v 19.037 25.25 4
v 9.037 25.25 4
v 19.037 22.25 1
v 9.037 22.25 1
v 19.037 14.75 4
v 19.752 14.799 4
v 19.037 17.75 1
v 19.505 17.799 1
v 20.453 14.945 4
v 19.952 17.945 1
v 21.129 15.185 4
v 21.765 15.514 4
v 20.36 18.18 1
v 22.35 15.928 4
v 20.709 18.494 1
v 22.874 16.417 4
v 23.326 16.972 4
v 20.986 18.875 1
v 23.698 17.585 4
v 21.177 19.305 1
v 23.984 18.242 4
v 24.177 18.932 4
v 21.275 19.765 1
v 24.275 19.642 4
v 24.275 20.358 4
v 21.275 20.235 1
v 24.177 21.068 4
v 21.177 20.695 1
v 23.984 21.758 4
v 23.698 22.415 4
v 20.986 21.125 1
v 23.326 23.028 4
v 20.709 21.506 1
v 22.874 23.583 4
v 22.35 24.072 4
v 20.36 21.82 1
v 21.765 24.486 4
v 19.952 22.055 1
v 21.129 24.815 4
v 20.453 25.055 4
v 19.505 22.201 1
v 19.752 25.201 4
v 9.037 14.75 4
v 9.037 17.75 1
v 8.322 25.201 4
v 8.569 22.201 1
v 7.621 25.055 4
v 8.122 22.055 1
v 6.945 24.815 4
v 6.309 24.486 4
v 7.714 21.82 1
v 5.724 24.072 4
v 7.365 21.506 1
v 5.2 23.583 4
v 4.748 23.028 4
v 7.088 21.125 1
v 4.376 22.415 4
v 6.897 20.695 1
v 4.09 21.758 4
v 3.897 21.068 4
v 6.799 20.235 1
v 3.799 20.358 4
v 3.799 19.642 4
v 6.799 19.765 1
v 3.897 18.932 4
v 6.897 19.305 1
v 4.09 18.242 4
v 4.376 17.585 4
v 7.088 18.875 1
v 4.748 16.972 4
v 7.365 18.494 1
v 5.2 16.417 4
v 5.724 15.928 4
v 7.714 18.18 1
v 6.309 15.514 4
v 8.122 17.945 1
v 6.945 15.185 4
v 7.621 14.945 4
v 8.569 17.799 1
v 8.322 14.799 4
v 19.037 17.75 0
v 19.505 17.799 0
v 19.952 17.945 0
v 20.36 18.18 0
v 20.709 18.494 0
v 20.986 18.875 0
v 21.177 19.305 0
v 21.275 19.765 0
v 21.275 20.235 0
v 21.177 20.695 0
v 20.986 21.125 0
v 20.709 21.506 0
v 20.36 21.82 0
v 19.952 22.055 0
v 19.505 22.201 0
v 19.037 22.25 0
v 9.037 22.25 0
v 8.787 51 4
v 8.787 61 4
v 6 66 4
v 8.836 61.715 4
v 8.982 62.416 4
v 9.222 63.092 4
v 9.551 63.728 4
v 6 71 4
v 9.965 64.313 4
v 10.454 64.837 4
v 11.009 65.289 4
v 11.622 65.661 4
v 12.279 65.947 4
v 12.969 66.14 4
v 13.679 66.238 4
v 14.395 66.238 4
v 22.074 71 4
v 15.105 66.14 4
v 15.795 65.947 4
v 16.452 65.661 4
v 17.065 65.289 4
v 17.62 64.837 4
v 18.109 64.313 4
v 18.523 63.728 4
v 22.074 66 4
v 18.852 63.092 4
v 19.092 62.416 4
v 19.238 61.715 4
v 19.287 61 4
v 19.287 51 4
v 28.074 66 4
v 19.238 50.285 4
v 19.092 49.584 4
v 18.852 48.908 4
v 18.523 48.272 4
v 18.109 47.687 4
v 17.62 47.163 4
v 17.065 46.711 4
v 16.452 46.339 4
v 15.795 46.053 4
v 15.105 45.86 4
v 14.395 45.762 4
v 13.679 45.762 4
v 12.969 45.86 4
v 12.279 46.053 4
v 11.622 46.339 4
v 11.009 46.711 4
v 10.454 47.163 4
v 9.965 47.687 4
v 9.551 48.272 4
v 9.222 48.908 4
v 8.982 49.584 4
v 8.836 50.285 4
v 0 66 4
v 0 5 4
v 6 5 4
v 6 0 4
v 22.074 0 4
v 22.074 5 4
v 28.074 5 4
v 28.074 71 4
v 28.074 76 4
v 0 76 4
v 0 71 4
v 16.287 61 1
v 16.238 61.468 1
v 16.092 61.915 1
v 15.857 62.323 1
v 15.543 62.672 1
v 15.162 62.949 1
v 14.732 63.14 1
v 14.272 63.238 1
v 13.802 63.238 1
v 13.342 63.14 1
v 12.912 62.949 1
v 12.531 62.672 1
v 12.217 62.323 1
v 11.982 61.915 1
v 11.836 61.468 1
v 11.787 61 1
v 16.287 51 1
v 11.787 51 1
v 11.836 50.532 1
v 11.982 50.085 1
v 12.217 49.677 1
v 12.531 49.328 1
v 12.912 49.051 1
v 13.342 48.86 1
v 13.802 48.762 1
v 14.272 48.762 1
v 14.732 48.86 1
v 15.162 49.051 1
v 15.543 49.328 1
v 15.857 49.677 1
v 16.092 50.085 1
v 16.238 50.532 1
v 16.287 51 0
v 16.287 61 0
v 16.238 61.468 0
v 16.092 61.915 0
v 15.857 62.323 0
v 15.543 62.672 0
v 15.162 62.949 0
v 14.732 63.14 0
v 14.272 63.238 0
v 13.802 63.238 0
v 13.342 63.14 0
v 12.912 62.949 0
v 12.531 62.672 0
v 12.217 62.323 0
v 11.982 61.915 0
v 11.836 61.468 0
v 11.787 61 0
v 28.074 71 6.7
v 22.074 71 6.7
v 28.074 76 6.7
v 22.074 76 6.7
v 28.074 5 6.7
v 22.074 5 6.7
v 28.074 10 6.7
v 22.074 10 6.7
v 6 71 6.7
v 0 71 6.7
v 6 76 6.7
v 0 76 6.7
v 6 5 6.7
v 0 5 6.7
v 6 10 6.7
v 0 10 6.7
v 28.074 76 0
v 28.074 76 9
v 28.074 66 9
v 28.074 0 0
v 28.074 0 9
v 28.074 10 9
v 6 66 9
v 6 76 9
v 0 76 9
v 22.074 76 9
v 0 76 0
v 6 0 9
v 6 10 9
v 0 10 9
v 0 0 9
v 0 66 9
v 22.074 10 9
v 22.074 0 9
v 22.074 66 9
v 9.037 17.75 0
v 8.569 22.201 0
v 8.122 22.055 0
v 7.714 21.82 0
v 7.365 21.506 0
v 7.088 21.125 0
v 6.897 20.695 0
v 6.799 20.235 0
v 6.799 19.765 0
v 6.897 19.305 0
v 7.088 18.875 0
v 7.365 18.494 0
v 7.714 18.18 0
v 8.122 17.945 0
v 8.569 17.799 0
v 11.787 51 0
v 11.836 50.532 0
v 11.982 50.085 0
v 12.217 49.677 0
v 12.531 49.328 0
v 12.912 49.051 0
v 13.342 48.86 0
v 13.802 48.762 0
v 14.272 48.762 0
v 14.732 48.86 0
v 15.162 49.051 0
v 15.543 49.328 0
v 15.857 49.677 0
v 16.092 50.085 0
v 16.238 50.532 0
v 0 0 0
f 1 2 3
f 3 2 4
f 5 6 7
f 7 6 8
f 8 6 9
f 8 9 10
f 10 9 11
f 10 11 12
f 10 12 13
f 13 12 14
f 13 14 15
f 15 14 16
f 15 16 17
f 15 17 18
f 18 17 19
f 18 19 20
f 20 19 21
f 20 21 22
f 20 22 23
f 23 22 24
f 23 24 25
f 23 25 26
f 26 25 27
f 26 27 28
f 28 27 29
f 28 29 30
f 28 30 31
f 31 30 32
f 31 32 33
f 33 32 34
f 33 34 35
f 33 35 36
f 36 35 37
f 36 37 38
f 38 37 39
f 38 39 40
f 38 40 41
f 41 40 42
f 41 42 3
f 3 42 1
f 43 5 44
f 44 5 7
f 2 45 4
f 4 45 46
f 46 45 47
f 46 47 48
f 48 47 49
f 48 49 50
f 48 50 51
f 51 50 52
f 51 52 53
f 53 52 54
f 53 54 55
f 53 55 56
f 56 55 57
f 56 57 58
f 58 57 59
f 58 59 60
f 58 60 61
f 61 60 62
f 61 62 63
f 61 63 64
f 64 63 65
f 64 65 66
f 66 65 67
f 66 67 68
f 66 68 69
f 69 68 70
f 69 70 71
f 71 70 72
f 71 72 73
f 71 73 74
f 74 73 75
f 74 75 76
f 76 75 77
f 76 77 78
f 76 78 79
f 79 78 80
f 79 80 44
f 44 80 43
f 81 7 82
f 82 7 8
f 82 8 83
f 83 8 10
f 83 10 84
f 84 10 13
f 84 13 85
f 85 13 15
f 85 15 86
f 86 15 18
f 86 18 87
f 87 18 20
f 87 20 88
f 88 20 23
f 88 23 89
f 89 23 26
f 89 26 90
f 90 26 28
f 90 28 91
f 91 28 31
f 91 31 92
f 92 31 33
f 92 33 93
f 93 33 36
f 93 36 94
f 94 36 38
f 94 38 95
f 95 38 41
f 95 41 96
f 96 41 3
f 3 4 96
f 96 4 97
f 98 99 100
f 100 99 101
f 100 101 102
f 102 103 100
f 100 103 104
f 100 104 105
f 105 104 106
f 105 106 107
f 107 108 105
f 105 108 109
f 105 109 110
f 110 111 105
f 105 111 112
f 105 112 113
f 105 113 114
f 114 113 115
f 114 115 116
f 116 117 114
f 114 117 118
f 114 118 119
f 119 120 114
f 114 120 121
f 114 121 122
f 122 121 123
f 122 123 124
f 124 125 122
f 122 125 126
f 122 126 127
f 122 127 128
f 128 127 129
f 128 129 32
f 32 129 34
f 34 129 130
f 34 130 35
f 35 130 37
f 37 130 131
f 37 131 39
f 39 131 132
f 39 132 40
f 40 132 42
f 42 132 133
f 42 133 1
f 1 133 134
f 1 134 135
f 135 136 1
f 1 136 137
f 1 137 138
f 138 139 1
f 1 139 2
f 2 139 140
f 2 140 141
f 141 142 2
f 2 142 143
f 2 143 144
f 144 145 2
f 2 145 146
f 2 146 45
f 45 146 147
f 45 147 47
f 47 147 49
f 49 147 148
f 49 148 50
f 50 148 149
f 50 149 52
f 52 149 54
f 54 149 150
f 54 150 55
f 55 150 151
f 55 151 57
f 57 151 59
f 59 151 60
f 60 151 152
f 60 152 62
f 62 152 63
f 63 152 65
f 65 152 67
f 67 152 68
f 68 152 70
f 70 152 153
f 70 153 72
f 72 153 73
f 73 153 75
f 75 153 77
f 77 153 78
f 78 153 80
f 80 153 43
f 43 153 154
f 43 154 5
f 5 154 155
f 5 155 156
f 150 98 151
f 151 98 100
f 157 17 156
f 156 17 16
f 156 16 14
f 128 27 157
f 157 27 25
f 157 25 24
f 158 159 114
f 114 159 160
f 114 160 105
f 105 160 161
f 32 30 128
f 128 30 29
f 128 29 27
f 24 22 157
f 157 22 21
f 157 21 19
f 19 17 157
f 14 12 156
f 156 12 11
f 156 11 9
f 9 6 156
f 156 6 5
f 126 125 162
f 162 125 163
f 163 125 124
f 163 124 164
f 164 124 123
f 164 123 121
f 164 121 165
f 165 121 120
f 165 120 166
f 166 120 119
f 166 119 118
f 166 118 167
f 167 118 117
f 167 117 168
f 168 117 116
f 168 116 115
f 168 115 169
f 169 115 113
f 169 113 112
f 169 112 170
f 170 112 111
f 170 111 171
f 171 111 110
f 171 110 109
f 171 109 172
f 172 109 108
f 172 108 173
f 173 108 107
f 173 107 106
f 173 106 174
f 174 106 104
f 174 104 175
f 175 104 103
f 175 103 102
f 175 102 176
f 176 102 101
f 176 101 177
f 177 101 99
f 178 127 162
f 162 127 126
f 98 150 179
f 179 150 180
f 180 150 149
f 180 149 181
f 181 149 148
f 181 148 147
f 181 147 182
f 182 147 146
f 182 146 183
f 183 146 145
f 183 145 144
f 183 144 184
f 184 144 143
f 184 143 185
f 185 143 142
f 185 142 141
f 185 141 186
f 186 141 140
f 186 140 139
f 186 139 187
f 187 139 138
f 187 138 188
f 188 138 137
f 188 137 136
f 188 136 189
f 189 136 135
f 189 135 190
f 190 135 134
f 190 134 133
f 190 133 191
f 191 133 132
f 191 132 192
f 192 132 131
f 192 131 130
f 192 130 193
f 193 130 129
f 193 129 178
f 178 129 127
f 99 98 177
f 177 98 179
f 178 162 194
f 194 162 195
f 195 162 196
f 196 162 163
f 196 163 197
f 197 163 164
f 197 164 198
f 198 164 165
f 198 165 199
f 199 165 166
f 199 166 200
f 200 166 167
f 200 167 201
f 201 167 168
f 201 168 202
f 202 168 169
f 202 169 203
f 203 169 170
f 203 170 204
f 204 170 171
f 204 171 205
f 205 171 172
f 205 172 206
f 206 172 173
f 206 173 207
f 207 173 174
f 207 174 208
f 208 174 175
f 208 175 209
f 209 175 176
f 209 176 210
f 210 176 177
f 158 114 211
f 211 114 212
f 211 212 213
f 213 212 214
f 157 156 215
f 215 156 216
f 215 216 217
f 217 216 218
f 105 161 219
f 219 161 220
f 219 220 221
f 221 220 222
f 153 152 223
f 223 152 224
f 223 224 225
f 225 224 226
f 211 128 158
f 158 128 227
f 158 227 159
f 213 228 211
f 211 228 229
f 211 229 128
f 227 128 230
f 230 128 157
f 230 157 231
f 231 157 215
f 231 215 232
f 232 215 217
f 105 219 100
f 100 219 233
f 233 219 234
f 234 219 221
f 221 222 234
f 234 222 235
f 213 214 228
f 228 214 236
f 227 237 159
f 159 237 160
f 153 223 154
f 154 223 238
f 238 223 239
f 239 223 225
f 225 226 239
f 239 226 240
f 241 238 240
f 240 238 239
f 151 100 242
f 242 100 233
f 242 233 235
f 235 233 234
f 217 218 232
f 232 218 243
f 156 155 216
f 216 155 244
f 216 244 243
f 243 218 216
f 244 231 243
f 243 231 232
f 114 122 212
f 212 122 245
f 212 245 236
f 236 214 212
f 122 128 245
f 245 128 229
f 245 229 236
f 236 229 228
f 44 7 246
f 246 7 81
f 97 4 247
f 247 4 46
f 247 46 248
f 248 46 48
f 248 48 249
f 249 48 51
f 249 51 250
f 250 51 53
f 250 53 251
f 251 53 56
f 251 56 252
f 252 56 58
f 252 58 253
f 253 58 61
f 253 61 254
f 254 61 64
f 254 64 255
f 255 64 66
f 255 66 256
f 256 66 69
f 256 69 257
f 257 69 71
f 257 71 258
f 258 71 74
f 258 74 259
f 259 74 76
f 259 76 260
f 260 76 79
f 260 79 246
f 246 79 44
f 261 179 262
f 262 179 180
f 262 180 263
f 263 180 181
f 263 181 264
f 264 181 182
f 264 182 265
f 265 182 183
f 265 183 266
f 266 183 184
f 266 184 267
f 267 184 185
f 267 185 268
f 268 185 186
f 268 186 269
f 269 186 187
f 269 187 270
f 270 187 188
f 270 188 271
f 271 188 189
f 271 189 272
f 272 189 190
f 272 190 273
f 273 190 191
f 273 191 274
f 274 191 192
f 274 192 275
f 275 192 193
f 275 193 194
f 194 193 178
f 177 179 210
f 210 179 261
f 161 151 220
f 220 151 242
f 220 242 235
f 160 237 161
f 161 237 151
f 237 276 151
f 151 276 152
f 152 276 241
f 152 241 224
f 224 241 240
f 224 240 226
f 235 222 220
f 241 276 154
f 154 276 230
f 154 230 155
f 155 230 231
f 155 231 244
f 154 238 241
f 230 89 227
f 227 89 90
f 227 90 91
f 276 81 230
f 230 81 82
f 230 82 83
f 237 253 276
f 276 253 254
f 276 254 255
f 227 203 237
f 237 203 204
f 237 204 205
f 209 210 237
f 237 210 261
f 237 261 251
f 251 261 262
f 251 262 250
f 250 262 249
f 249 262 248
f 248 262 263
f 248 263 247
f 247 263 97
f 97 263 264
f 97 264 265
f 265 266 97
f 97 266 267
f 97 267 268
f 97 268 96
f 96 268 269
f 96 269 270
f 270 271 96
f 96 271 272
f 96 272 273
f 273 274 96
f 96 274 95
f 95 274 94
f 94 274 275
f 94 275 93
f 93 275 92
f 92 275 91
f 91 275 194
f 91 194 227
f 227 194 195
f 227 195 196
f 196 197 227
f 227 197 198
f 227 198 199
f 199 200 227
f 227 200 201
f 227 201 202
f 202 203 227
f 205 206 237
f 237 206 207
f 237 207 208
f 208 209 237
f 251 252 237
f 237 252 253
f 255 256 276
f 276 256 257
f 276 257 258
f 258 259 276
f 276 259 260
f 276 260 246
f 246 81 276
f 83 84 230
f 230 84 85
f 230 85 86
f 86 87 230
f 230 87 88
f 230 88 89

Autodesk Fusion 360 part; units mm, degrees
sketch "Skizze2" plane through (0, 0, 0) normal (0, 0, 1) x (1, 0, 0)
  line L0 (0, 0) -> (28.074, 0)
  line L1 (28.074, 0) -> (28.074, 76)
  line L2 (28.074, 76) -> (0, 76)
  line L3 (0, 76) -> (0, 0)
  line L4 (0, 76) -> (6, 76)
  line L5 (6, 76) -> (6, 66)
  line L6 (6, 66) -> (0, 66)
  line L7 (0, 66) -> (0, 76)
  line L8 (28.074, 76) -> (22.074, 76)
  line L9 (22.074, 76) -> (22.074, 66)
  line L10 (22.074, 66) -> (28.074, 66)
  line L11 (28.074, 66) -> (28.074, 76)
  line L12 (0, 0) -> (6, 0)
  line L13 (6, 0) -> (6, 10)
  line L14 (6, 10) -> (0, 10)
  line L15 (0, 10) -> (0, 0)
  line L16 (28.074, 0) -> (22.074, 0)
  line L17 (22.074, 0) -> (22.074, 10)
  line L18 (22.074, 10) -> (28.074, 10)
  line L19 (28.074, 10) -> (28.074, 0)
  line L20 (14.037, 76) -> (14.037, 0) construction
  line L21 (0, 20) -> (28.074, 20) construction
  line L22 (0, 56) -> (28.074, 56) construction
  circle A0 centre (14.037, 61) radius 2.25
  circle A1 centre (14.037, 51) radius 2.25
  circle A2 centre (9.037, 20) radius 2.25
  circle A3 centre (19.037, 20) radius 2.25
  line L23 (11.787, 61) -> (11.787, 51)
  line L24 (16.287, 61) -> (16.287, 51)
  line L25 (9.037, 22.25) -> (19.037, 22.25)
  line L26 (9.037, 17.75) -> (19.037, 17.75)
  line L27 (0, 76) -> (6, 76)
  line L28 (6, 76) -> (6, 71)
  line L29 (6, 71) -> (0, 71)
  line L30 (0, 71) -> (0, 76)
  line L31 (22.074, 76) -> (28.074, 76)
  line L32 (28.074, 76) -> (28.074, 71)
  line L33 (28.074, 71) -> (22.074, 71)
  line L34 (22.074, 71) -> (22.074, 76)
  line L35 (0, 10) -> (6, 10)
  line L36 (6, 10) -> (6, 5)
  line L37 (6, 5) -> (0, 5)
  line L38 (0, 5) -> (0, 10)
  line L39 (22.074, 10) -> (28.074, 10)
  line L40 (28.074, 10) -> (28.074, 5)
  line L41 (28.074, 5) -> (22.074, 5)
  line L42 (22.074, 5) -> (22.074, 10)
  point P0 (14.037, 61)
  point P1 (14.037, 51)
  point P2 (9.037, 20)
  point P3 (19.037, 20)
  point P4 (14.037, 56)
  point P5 (14.037, 20)
  dimension "d1" = 28.074
  dimension "d2" = 76
  dimension "d3" = 6
  dimension "d4" = 10
  dimension "d5" = 6
  dimension "d6" = 10
  dimension "d7" = 6
  dimension "d8" = 10
  dimension "d9" = 6
  dimension "d10" = 10
  dimension "d11" = 20
  dimension "d12" = 20
  dimension "d13" = 5
  dimension "d14" = 5
  dimension "d15" = 5
  dimension "d16" = 5
  dimension "d17" = 4.5
  dimension "d18" = 4.5
  dimension "d19" = 4.5
  dimension "d20" = 4.5
  dimension "d23" = 5
extrude "Extrusion1" add sketch "Skizze2" along normal blind 4 contours L0 L1 L2 L3 L5 L6 L9 L10 L13 L14 L17 L18 L28 L34 L35 L36 L39 L42
extrude "Extrusion2" add sketch "Skizze2" along normal blind 9 contours L0 L3 L12 L13 L15 L37 | L3 L13 L14 L15 L35 L36 L37 L38 | L0 L1 L16 L17 L19 L41 | L1 L17 L18 L19 L39 L40 L41 L42 | L3 L5 L6 L7 L29 | L2 L3 L4 L5 L7 L27 L28 L29 L30 | L1 L9 L10 L11 L33 | L1 L2 L8 L9 L11 L31 L32 L33 L34
extrude "Extrusion3" cut sketch "Skizze2" along normal blind 6.7 contours L3 L13 L14 L15 L35 L36 L37 L38 | L1 L17 L18 L19 L39 L40 L41 L42 | L2 L3 L4 L5 L7 L27 L28 L29 L30 | L1 L2 L8 L9 L11 L31 L32 L33 L34
extrude "Extrusion4" add sketch "Skizze2" along normal blind 4 contours L3 L13 L14 L15 L35 L36 L37 L38 | L1 L17 L18 L19 L39 L40 L41 L42 | L2 L3 L4 L5 L7 L27 L28 L29 L30 | L1 L2 L8 L9 L11 L31 L32 L33 L34
chamfer "Fase1" distance 3 angle 45 8 edges at (14.037, 63.25, 4) (16.287, 56, 4) (14.037, 48.75, 4) (11.787, 56, 4) (14.037, 22.25, 4) (21.287, 20, 4) (14.037, 17.75, 4) (6.787, 20, 4)
